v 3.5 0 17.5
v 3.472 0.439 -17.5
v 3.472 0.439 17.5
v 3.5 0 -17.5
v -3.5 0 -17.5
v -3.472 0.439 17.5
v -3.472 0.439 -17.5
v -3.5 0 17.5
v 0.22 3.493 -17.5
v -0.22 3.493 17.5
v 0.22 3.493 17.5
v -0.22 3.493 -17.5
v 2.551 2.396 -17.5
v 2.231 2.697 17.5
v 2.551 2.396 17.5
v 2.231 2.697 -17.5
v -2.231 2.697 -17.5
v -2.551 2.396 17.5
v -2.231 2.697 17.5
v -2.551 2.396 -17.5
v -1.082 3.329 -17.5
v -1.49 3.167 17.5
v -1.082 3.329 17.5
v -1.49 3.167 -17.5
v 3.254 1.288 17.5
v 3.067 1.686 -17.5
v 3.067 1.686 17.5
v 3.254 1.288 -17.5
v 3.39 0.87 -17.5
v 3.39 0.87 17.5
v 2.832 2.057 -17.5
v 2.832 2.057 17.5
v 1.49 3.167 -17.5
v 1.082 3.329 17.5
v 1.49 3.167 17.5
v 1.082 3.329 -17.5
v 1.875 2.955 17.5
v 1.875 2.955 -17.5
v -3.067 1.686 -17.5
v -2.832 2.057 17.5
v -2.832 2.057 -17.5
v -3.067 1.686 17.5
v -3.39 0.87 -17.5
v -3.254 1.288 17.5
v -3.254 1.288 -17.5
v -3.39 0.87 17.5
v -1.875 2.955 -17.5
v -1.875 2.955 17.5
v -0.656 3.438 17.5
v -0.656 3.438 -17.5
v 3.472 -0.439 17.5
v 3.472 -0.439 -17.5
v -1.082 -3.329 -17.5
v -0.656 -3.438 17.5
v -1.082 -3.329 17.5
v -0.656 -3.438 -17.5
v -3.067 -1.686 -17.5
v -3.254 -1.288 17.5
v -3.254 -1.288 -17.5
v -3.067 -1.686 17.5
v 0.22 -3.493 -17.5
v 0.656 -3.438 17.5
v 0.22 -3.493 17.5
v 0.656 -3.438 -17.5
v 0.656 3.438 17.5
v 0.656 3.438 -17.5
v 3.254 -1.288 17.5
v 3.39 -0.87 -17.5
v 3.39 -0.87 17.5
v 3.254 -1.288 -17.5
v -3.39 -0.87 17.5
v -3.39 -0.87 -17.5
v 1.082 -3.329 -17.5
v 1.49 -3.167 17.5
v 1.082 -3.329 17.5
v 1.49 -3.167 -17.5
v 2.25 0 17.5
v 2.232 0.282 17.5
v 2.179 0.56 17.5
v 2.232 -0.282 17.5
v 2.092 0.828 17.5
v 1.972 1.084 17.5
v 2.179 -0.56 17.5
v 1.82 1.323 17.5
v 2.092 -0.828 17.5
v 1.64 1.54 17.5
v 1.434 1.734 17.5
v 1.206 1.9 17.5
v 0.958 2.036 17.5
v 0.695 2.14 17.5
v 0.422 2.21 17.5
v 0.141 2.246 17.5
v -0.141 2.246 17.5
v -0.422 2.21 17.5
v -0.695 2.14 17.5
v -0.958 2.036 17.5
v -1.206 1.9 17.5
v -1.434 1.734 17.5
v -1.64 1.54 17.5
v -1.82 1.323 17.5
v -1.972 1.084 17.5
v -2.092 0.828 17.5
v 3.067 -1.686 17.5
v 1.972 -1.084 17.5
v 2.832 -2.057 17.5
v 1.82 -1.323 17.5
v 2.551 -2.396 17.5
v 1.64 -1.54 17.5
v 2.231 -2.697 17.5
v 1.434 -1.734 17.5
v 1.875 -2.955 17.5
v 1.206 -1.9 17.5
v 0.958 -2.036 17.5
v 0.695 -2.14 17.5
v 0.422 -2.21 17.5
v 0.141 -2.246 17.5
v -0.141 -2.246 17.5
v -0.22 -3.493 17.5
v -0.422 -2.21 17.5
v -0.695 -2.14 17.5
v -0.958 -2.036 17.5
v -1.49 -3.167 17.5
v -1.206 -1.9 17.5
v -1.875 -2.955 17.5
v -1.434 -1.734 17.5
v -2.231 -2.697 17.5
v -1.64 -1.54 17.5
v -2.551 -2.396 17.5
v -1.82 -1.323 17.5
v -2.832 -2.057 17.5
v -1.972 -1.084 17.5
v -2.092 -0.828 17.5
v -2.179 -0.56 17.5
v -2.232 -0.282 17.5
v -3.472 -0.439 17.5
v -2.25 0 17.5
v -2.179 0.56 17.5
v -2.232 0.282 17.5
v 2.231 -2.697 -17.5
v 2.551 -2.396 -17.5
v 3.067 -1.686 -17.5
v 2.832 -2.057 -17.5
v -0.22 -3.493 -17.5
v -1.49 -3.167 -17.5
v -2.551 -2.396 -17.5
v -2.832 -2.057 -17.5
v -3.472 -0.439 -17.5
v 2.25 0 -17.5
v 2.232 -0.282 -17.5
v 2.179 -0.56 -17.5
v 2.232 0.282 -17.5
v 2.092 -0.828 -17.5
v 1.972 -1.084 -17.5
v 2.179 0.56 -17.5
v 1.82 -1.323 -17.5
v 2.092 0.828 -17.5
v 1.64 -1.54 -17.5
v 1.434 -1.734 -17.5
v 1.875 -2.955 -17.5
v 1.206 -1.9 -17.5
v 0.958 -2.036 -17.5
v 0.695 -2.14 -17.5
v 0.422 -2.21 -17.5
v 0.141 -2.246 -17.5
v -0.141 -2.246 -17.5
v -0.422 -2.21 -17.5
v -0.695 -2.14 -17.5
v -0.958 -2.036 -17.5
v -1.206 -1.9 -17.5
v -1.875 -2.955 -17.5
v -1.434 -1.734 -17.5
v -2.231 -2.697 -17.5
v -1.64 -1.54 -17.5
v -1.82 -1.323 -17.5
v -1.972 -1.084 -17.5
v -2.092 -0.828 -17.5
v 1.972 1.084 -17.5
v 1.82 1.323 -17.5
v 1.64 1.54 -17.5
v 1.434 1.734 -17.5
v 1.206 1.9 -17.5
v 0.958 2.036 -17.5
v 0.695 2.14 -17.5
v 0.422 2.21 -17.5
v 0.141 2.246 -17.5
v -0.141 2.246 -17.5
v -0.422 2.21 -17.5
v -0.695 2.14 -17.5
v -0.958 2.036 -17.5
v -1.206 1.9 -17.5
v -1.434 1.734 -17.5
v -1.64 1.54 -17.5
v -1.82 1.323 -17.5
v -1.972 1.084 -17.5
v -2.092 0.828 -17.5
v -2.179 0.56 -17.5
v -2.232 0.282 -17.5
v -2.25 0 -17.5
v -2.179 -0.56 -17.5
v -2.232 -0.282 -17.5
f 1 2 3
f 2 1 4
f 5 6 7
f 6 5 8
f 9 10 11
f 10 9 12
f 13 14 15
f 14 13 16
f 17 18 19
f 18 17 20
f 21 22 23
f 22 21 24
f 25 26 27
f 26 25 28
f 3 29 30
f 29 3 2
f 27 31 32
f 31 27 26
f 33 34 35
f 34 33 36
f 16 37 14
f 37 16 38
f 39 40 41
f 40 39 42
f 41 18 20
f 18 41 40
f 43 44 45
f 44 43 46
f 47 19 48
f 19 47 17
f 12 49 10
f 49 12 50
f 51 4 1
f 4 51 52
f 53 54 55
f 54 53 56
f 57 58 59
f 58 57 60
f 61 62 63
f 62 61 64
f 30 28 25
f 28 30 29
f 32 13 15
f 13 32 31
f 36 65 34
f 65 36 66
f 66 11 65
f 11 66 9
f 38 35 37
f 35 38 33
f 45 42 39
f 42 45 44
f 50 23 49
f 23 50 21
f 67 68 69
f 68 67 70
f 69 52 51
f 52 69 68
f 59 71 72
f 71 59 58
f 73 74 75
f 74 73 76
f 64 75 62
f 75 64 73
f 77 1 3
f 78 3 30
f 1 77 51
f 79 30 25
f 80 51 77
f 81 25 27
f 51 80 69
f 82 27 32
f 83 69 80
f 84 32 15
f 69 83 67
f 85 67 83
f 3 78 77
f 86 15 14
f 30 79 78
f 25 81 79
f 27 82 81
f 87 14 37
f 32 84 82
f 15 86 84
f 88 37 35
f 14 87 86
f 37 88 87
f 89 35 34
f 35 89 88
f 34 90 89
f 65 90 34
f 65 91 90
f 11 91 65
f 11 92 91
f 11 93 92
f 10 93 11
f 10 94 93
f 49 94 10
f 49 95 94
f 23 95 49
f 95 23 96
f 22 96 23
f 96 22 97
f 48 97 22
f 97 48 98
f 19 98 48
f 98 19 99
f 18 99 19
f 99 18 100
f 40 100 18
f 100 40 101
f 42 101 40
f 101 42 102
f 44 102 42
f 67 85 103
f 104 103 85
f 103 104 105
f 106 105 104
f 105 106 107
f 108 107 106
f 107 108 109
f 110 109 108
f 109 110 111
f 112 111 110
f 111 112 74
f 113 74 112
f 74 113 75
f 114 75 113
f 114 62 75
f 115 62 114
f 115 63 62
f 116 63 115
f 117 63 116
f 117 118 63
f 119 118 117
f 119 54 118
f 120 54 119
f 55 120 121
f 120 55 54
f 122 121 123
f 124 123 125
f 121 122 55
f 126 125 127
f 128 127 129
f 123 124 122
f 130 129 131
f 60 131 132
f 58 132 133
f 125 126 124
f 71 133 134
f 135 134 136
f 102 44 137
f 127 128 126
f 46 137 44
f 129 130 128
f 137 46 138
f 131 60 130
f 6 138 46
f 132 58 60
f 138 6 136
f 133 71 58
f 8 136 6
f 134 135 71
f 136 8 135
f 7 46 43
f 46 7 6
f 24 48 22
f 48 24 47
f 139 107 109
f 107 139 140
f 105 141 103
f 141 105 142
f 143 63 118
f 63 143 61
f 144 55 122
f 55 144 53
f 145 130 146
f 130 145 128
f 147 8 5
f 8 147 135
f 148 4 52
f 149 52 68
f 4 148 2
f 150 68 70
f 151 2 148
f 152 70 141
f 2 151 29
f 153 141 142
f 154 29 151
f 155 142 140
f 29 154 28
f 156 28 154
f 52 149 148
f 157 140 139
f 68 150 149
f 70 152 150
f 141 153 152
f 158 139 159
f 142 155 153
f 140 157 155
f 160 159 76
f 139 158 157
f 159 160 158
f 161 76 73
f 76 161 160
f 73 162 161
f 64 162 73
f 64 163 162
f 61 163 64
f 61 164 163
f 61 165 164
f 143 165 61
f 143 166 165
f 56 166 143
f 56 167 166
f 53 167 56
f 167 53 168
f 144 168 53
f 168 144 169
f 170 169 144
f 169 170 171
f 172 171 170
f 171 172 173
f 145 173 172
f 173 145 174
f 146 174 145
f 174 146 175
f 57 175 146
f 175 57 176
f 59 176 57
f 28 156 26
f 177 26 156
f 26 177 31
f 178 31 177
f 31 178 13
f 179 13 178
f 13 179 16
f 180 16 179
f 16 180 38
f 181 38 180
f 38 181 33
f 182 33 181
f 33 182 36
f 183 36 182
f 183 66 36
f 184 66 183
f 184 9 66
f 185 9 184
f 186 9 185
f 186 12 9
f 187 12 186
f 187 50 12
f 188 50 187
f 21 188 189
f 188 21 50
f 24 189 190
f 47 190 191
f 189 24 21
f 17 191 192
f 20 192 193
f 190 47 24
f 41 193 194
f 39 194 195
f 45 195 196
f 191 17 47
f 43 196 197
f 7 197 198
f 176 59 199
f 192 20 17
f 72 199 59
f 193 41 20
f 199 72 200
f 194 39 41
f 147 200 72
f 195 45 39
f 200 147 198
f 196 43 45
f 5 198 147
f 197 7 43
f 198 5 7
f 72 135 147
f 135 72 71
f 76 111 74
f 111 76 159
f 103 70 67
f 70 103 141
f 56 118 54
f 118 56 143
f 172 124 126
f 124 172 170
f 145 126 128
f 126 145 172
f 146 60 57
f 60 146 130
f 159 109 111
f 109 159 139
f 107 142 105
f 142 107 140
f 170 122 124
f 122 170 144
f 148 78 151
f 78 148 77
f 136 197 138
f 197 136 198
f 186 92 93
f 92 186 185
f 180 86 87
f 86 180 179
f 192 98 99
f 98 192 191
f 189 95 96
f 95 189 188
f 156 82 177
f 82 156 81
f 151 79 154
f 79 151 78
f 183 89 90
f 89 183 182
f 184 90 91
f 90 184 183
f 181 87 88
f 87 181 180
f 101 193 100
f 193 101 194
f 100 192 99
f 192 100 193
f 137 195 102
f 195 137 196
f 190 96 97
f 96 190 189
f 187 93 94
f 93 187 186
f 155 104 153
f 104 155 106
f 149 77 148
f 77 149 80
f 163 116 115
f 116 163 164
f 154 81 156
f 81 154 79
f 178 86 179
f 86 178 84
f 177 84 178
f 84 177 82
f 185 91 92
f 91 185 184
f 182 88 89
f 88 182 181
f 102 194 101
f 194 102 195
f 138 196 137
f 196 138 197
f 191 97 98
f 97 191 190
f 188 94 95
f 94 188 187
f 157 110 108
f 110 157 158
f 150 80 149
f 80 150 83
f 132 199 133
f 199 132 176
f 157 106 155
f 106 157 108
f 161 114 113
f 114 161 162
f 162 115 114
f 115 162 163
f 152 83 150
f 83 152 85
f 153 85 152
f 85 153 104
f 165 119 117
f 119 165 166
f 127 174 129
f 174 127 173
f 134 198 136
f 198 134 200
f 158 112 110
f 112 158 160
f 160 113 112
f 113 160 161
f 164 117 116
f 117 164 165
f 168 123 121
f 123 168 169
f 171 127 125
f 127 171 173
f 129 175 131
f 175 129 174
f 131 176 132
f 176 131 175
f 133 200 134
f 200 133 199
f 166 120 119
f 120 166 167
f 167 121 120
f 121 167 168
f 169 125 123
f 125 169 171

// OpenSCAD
$fn = 50;


difference() {
	union() {
		translate(v = [0, 0, -17.5000000000]) {
			cylinder(h = 35, r = 3.5000000000);
		}
	}
	union() {
		translate(v = [0, 0, -100.0000000000]) {
			cylinder(h = 200, r = 2.2500000000);
		}
	}
}
